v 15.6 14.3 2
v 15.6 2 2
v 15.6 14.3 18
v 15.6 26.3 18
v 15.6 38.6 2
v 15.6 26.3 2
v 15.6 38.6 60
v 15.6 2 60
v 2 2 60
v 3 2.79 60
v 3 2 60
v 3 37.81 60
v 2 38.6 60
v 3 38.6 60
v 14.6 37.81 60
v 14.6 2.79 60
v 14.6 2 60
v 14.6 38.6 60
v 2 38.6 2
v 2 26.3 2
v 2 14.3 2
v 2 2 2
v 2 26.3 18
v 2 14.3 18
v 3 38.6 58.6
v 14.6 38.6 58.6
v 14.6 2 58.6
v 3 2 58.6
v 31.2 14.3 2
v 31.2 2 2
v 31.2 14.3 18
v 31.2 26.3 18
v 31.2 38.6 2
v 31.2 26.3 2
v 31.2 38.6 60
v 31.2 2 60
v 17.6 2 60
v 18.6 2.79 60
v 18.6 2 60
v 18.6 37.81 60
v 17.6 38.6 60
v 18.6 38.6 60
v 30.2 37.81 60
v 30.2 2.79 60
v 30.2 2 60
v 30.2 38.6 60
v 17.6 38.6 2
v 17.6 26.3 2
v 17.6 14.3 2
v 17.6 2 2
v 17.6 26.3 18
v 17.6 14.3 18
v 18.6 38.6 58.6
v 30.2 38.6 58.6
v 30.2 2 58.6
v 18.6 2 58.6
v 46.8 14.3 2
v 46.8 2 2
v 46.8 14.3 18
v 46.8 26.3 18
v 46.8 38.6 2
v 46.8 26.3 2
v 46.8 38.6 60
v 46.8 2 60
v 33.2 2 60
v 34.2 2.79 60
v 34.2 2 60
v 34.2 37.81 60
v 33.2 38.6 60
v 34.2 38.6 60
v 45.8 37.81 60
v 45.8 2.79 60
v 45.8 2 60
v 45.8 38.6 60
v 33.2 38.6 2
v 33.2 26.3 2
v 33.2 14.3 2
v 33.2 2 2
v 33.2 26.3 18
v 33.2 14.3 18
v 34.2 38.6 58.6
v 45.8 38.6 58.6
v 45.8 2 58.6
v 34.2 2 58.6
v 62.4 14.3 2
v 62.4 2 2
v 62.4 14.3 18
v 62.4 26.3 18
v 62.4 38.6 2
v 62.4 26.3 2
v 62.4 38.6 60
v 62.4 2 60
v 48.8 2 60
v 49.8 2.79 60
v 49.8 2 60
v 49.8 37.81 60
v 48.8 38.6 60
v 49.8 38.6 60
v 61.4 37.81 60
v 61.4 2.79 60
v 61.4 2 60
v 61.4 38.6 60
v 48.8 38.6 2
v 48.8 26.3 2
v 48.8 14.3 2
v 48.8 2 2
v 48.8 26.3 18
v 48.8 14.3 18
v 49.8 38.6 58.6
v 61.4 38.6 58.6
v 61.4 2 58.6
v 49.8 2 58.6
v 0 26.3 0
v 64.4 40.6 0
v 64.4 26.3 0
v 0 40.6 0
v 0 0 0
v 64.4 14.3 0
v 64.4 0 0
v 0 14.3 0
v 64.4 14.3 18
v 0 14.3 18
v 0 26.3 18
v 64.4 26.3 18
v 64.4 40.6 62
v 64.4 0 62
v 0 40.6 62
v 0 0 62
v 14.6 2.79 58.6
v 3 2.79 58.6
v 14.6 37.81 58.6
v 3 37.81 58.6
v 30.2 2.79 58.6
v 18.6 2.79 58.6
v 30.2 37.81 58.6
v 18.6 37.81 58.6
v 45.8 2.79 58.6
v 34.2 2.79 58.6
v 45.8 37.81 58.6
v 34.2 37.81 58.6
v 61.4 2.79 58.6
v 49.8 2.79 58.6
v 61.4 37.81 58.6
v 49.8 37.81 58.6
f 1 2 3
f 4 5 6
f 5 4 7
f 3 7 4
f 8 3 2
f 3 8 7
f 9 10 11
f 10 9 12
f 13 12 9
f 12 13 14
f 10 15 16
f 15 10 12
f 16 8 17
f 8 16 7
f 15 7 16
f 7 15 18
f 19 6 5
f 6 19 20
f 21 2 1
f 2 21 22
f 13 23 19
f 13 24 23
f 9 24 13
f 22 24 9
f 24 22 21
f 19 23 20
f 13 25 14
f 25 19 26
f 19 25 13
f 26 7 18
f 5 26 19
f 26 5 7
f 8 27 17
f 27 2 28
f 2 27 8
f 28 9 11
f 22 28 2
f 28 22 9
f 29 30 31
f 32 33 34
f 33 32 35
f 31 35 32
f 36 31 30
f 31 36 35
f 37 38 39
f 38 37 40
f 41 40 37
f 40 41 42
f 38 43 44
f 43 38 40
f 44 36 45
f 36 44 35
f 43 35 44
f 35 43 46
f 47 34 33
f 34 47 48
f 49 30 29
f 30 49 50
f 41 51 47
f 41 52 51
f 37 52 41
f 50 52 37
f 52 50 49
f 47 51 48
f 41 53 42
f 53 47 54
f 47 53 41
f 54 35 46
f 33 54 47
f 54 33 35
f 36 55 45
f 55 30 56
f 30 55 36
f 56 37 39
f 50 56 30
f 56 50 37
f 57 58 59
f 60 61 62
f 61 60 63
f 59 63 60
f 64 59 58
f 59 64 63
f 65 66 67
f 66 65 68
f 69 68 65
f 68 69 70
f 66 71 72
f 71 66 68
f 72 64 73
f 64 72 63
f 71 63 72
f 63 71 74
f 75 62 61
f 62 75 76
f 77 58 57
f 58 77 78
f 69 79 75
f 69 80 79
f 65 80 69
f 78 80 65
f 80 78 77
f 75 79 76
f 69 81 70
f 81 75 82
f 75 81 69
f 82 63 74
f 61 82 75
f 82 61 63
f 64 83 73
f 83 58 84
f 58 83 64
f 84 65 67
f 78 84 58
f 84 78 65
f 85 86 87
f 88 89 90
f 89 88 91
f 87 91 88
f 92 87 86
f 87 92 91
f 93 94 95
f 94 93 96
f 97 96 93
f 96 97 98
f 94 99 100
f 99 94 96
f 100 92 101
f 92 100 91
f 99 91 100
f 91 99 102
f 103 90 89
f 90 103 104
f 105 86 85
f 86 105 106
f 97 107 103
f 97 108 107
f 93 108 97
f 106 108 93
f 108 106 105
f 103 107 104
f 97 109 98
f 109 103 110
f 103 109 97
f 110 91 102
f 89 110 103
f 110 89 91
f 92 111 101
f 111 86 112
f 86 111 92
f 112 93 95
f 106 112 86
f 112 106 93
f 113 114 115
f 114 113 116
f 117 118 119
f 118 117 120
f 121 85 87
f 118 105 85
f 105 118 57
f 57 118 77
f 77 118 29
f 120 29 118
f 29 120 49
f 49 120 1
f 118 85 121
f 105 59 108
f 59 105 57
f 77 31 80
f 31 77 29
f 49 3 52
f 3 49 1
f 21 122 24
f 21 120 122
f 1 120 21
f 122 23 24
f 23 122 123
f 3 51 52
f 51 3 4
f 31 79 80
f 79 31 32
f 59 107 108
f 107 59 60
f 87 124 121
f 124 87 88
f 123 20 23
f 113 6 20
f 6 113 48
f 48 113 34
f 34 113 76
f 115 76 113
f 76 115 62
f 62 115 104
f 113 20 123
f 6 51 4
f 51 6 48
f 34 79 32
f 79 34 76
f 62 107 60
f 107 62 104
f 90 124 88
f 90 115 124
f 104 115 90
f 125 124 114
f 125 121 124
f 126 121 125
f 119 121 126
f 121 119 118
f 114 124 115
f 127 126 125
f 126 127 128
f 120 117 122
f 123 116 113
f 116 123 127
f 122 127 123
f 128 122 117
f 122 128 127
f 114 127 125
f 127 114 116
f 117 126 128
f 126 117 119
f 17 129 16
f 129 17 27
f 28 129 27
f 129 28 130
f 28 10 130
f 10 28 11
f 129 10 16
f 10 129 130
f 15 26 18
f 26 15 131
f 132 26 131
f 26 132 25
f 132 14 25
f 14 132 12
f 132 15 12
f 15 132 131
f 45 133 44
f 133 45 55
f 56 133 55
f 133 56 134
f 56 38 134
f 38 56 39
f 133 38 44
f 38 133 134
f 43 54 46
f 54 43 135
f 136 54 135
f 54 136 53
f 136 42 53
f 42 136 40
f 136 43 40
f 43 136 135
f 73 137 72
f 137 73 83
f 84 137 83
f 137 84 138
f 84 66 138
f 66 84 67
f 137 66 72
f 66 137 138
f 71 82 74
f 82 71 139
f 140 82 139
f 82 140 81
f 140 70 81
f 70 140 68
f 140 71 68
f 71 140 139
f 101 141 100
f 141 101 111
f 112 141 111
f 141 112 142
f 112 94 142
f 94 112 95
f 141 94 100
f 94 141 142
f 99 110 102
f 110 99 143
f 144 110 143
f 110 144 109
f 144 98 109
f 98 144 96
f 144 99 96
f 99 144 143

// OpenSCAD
// Olympus BLS-5 4x1 battery case
// Batteries stand on 36x13 face; height 56

$fn = 80;

// Parameters
battery_w = 36;    // along Y (width of largest face)
battery_t = 13;    // along X (thickness / row direction)
battery_h = 56;    // vertical height
clear_xy = 0.6;    // clearance on X/Y
clear_z = 2;       // clearance on Z
wall = 2;          // outer and divider wall thickness
base_th = 2;       // bottom thickness
rim_th = 2;        // top rim thickness

// Derived inner sizes
slot_x = battery_t + clear_xy; // along row
slot_y = battery_w + clear_xy; // depth
slot_h = battery_h + clear_z;  // usable height

slots = 4;

total_x = slots * slot_x + (slots + 1) * wall;
total_y = slot_y + 2 * wall;
total_z = base_th + slot_h + rim_th;

finger_r_x = 9; // finger hole radius along X (oval)
finger_r_y = 6; // radius along Y (oval)
finger_hole_depth = base_th + 16; // how high the hole pushes up into slot

nib_inset = 0.8; // inward overhang depth
nib_height = 1.6;

module body_block(){
    cube([total_x, total_y, total_z], center=false);
}

module slot_cavity(index){
    x0 = wall + index * (slot_x + wall);
    translate([x0, wall, base_th])
        cube([slot_x, slot_y, slot_h], center=false);
}

module finger_hole(index){
    x_center = wall + slot_x/2 + index * (slot_x + wall);
    y_center = total_y/2;
    translate([x_center, y_center, 0])
        linear_extrude(height=finger_hole_depth, center=false)
            offset(r=0)
                square([finger_r_x*2, finger_r_y*2], center=true);
}

module nibs(index){
    // small inward lips on both long sides near the rim
    x0 = wall + index * (slot_x + wall);
    z0 = total_z - rim_th - nib_height + 0.2;
    nib_len = slot_x - 2; // leave clearance near dividers
    // front nib (y at wall)
    translate([x0 + 1, wall - 0.01, z0])
        cube([nib_len, nib_inset, nib_height]);
    // back nib (y at wall + slot_y)
    translate([x0 + 1, wall + slot_y - nib_inset + 0.01, z0])
        cube([nib_len, nib_inset, nib_height]);
}

module case_model(){
    difference(){
        body_block();
        // cavities
        for(i=[0:slots-1]) slot_cavity(i);
        // finger holes
        for(i=[0:slots-1]) finger_hole(i);
    }
    // add nibs after subtraction
    for(i=[0:slots-1]) nibs(i);
}

case_model();
